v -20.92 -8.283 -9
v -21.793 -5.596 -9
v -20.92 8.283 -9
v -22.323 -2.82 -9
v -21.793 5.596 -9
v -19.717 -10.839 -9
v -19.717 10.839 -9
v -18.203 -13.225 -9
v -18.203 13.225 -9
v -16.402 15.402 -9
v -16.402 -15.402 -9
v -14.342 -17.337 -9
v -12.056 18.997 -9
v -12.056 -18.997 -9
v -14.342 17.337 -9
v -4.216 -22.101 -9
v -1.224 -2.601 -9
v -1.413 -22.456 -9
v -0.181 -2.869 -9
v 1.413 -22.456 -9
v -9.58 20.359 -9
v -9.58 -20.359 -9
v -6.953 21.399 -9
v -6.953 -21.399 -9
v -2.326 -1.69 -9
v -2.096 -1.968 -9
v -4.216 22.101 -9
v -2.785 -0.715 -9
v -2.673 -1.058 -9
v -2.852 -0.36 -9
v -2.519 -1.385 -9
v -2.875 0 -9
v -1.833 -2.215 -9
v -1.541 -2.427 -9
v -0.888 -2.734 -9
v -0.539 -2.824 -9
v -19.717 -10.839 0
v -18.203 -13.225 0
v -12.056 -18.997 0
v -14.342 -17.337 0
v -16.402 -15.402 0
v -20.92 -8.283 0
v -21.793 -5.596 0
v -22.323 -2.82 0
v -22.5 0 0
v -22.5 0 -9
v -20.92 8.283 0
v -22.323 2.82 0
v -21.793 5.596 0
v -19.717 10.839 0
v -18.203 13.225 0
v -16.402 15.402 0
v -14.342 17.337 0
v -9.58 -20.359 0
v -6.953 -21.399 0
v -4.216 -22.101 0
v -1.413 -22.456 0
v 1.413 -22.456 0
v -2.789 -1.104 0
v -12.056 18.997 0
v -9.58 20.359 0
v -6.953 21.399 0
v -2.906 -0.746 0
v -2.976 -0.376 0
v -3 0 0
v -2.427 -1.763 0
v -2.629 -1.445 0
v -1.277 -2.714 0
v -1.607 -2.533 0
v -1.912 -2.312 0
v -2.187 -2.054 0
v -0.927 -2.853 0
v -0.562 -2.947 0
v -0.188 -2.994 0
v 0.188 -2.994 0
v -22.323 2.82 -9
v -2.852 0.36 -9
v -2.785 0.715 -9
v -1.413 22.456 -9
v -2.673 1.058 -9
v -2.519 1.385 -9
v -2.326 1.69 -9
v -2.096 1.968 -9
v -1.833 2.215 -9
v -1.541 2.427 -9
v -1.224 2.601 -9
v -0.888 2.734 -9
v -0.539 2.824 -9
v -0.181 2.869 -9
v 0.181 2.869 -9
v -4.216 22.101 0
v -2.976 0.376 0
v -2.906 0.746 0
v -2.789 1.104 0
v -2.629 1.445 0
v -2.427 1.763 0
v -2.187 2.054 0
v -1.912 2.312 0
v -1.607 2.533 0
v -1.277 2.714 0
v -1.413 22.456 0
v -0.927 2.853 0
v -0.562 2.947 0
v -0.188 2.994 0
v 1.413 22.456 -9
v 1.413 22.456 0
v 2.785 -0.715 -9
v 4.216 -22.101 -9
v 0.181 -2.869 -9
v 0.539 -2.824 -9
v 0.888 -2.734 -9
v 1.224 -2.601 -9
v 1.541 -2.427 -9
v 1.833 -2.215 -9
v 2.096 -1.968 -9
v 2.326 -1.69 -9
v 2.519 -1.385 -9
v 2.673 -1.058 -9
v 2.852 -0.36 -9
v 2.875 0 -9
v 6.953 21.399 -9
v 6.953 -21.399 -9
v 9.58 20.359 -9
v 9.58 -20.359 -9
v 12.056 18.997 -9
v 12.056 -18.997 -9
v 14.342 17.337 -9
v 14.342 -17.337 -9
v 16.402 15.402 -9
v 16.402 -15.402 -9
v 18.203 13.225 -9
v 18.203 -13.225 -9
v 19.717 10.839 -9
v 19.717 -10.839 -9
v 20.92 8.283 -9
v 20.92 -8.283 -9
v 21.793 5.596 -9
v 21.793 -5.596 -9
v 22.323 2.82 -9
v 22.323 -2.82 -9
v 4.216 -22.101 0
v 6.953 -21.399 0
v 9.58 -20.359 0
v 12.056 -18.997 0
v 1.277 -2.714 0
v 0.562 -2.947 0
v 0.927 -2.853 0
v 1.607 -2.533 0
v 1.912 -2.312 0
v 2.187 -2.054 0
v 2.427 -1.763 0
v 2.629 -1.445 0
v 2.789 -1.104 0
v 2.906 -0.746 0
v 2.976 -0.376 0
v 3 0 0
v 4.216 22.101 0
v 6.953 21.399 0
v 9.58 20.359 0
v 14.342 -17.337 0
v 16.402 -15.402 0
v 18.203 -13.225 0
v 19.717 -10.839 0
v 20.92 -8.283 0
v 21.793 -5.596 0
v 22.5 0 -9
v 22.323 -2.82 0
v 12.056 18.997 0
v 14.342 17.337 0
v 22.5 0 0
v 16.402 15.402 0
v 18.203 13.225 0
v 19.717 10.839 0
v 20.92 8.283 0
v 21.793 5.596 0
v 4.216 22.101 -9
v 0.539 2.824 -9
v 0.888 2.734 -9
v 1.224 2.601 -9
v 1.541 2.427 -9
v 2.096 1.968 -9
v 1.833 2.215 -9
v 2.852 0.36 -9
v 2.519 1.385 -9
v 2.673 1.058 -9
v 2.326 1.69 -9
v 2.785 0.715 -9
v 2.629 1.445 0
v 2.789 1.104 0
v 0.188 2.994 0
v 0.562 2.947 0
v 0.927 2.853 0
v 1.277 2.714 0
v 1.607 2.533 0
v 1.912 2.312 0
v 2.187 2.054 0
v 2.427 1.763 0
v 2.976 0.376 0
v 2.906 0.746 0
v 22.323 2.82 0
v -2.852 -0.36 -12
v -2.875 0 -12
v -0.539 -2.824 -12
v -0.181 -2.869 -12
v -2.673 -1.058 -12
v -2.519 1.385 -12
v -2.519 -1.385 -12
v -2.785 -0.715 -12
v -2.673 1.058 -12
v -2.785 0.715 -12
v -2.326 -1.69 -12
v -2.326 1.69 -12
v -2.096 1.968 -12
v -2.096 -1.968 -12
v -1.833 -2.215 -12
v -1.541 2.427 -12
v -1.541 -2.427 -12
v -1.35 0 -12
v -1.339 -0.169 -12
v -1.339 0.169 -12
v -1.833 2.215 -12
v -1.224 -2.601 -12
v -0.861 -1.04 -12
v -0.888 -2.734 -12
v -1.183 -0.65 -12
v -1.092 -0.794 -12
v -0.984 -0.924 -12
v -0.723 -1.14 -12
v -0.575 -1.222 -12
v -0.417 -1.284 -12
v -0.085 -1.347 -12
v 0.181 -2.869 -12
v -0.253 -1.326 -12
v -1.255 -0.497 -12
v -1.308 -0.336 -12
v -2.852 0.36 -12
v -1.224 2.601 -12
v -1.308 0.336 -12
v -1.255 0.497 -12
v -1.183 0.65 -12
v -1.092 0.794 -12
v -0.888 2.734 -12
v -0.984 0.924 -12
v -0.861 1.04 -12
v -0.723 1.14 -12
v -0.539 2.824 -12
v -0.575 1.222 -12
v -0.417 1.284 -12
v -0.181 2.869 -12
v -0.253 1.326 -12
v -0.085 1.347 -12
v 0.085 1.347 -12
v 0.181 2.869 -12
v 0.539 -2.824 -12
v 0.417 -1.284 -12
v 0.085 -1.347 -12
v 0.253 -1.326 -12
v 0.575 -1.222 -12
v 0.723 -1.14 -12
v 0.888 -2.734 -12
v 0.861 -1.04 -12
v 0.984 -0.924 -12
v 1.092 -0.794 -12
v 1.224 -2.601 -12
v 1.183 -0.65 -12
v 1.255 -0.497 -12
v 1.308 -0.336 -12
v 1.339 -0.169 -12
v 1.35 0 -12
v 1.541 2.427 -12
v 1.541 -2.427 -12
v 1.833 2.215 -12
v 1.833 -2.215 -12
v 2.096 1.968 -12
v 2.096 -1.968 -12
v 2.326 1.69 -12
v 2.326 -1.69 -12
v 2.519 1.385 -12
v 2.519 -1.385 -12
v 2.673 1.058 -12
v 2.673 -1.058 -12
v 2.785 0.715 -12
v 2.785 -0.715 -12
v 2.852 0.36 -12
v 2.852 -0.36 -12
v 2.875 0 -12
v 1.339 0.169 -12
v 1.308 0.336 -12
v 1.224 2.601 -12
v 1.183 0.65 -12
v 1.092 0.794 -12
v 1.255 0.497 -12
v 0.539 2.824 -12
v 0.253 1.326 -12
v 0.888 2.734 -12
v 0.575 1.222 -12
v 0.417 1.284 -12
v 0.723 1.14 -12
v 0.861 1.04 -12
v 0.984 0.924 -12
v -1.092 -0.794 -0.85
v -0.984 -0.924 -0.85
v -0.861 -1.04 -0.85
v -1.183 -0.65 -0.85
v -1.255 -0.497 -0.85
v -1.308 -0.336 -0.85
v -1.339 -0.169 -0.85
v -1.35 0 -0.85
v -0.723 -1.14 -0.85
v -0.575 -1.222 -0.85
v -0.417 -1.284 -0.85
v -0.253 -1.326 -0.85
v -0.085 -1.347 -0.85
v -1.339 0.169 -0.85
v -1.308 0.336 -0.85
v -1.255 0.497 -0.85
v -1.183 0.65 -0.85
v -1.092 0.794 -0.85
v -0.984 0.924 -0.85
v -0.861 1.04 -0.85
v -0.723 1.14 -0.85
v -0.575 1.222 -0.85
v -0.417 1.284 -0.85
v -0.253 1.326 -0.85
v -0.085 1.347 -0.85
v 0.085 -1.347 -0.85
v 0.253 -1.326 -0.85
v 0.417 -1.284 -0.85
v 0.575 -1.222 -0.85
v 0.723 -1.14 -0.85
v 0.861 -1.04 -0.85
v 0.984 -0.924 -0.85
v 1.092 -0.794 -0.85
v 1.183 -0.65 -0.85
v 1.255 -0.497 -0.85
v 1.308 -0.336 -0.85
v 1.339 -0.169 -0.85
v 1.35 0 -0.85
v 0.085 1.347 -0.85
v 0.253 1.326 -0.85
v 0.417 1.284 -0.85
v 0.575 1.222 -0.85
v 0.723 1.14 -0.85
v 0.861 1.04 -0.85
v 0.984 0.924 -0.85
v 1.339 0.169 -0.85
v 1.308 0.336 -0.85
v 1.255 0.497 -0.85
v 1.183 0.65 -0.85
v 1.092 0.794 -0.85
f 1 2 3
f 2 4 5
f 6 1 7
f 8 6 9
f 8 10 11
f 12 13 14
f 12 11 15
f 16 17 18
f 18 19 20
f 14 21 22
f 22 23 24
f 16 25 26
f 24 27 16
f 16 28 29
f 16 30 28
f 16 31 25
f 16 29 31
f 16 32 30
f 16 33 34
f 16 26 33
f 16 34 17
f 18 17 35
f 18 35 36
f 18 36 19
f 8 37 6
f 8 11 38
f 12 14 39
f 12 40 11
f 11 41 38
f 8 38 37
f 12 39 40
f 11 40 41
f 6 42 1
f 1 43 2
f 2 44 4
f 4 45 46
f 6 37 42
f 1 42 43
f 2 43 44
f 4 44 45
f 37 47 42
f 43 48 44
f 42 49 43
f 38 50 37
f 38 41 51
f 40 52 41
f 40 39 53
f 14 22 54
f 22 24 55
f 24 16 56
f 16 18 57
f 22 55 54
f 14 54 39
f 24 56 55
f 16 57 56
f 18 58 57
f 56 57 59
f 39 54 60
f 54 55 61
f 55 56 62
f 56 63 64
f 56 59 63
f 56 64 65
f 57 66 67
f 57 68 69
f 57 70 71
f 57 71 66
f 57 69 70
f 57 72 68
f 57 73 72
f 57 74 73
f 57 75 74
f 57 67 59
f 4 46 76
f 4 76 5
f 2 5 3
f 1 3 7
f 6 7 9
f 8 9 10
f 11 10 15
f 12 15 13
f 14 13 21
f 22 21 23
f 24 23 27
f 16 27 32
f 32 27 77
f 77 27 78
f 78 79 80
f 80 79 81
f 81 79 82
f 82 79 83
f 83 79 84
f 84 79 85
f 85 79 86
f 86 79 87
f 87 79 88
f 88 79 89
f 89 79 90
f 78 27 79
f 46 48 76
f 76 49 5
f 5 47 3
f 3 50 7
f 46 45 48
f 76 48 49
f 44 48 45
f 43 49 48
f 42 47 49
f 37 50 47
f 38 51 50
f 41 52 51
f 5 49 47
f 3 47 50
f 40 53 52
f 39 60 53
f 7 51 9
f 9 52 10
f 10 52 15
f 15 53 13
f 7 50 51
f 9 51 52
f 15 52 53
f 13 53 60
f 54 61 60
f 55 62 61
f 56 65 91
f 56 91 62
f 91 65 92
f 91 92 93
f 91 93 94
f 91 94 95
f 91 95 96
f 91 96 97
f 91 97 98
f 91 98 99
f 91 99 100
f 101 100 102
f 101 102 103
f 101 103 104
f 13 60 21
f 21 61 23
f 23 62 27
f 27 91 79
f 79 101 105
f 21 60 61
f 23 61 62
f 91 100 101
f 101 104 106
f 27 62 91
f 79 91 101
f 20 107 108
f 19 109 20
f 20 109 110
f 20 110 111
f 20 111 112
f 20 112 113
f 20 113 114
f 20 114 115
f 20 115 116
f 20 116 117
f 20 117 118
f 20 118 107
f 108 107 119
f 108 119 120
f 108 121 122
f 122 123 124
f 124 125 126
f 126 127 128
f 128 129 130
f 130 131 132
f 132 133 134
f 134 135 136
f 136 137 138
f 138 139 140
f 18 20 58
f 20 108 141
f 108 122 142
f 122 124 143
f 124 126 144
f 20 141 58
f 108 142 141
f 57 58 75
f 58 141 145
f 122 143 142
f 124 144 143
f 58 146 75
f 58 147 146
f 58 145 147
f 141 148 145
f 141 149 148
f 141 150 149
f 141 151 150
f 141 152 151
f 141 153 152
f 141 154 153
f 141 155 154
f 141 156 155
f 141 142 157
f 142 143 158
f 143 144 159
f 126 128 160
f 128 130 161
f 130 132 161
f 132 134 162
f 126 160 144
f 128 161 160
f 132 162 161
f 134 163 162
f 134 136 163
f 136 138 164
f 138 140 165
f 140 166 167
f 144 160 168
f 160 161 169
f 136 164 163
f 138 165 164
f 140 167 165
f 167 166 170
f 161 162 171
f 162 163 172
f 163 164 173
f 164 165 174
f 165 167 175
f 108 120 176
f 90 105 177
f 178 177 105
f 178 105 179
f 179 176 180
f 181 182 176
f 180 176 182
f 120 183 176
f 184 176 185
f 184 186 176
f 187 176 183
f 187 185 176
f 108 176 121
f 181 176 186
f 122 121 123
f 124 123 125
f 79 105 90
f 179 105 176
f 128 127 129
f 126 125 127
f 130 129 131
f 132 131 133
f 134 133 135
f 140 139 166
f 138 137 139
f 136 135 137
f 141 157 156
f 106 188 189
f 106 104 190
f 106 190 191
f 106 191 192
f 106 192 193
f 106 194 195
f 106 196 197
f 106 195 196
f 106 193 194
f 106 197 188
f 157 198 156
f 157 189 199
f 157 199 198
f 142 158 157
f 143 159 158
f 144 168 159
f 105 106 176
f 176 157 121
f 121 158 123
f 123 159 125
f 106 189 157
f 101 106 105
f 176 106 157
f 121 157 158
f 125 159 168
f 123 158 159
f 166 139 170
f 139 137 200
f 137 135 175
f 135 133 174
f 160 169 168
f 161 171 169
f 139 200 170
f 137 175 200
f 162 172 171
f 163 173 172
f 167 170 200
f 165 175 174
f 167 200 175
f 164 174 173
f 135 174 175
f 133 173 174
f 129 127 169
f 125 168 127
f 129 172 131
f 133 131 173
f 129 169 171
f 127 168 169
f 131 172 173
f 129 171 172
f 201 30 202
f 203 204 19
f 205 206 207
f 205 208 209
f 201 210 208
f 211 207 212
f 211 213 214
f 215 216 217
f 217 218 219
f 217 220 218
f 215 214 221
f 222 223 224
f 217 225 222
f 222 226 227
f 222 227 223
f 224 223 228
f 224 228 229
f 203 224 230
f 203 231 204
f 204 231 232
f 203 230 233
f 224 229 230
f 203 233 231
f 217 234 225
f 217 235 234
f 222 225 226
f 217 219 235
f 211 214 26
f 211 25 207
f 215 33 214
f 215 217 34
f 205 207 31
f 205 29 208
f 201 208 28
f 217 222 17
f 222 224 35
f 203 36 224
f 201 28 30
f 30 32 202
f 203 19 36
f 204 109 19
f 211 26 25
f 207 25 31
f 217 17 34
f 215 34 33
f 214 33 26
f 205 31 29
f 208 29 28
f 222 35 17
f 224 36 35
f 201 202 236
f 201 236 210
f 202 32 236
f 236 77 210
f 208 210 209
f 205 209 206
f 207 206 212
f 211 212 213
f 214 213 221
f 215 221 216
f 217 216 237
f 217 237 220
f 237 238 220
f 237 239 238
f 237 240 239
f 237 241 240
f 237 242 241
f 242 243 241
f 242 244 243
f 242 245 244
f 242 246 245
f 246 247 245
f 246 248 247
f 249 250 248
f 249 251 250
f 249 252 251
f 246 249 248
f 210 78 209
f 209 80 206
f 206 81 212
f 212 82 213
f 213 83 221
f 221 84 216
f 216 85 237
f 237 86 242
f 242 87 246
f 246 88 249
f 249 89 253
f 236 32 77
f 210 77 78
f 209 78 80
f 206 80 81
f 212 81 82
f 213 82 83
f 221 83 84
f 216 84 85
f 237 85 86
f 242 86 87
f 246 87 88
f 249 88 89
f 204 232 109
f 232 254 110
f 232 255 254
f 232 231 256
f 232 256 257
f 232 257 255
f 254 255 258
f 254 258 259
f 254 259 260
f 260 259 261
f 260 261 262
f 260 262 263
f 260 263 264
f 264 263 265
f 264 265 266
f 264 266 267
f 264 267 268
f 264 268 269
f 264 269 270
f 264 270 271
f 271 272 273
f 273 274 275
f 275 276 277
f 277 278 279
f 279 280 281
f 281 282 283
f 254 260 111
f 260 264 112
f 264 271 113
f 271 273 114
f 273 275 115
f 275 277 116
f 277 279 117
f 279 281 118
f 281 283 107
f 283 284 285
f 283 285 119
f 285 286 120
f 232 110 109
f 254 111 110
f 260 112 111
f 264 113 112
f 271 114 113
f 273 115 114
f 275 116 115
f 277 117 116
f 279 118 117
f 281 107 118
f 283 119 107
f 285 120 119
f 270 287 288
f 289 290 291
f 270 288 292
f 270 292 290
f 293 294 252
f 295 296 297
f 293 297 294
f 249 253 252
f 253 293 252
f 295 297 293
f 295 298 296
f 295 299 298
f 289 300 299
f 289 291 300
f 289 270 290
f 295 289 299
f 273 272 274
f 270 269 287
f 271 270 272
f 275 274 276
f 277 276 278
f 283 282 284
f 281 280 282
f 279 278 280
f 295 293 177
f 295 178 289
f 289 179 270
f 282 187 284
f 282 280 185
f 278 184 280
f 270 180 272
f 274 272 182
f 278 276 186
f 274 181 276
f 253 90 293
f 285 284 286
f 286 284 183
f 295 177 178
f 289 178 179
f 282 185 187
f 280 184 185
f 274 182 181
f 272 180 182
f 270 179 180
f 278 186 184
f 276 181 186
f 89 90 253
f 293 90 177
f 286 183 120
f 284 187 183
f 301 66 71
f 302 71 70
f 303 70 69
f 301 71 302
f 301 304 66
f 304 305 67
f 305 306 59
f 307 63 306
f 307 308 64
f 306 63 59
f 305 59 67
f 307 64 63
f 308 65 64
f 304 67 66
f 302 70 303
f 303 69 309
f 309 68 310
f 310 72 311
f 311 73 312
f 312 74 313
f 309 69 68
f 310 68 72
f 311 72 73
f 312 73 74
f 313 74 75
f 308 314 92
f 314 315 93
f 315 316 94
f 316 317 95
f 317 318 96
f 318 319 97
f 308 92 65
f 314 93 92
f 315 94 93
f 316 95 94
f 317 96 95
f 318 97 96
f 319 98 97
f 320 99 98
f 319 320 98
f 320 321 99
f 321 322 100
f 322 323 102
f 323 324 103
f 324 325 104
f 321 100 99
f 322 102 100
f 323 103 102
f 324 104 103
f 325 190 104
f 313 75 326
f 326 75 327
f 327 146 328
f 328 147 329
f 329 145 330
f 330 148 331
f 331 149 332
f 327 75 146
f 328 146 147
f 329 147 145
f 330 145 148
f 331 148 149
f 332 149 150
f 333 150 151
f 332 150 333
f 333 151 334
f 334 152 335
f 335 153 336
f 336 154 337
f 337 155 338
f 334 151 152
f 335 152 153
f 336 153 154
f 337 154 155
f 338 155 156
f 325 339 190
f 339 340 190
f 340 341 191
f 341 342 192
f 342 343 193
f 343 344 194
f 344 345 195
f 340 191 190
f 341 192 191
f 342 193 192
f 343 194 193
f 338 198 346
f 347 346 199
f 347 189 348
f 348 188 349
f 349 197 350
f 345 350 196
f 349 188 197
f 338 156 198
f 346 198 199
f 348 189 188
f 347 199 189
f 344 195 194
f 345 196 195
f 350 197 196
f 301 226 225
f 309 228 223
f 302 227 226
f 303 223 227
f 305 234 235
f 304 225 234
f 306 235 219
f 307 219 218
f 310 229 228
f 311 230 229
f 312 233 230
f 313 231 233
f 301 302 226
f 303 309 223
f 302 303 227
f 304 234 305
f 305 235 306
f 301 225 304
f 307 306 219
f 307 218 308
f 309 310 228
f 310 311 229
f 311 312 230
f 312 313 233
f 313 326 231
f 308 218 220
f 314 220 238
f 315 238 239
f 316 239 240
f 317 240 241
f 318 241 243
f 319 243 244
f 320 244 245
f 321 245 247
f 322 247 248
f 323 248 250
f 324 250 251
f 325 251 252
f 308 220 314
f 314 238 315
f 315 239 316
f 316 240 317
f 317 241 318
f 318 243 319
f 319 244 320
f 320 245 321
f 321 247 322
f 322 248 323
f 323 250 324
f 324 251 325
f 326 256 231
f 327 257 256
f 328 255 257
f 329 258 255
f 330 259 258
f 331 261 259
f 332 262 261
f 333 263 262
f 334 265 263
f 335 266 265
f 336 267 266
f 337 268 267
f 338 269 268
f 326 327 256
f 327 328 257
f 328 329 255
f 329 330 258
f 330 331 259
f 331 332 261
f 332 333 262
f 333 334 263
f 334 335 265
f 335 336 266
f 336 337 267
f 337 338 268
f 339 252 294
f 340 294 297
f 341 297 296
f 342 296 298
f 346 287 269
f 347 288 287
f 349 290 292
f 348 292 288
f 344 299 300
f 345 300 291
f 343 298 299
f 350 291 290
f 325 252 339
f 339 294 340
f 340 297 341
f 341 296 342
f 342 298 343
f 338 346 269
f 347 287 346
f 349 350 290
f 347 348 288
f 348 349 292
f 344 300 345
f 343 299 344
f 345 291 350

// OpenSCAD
$fn = 50;


difference() {
	union() {
		translate(v = [0, 0, -9.0000000000]) {
			cylinder(h = 9, r = 22.5000000000);
		}
		#translate(v = [0, 0, -12.0000000000]) {
			cylinder(h = 12, r = 2.8750000000);
		}
	}
	union() {
		translate(v = [0, 0, 0]) {
			rotate(a = [0, 0, 0]) {
				difference() {
					union() {
						translate(v = [0, 0, -12.0000000000]) {
							cylinder(h = 12, r = 1.0000000000);
						}
						translate(v = [0, 0, -0.8500000000]) {
							cylinder(h = 0.8500000000, r1 = 1.3500000000, r2 = 3.0000000000);
						}
						translate(v = [0, 0, -12.0000000000]) {
							cylinder(h = 12, r = 1.3500000000);
						}
						translate(v = [0, 0, -12.0000000000]) {
							cylinder(h = 12, r = 1.0000000000);
						}
					}
					union();
				}
			}
		}
	}
}
